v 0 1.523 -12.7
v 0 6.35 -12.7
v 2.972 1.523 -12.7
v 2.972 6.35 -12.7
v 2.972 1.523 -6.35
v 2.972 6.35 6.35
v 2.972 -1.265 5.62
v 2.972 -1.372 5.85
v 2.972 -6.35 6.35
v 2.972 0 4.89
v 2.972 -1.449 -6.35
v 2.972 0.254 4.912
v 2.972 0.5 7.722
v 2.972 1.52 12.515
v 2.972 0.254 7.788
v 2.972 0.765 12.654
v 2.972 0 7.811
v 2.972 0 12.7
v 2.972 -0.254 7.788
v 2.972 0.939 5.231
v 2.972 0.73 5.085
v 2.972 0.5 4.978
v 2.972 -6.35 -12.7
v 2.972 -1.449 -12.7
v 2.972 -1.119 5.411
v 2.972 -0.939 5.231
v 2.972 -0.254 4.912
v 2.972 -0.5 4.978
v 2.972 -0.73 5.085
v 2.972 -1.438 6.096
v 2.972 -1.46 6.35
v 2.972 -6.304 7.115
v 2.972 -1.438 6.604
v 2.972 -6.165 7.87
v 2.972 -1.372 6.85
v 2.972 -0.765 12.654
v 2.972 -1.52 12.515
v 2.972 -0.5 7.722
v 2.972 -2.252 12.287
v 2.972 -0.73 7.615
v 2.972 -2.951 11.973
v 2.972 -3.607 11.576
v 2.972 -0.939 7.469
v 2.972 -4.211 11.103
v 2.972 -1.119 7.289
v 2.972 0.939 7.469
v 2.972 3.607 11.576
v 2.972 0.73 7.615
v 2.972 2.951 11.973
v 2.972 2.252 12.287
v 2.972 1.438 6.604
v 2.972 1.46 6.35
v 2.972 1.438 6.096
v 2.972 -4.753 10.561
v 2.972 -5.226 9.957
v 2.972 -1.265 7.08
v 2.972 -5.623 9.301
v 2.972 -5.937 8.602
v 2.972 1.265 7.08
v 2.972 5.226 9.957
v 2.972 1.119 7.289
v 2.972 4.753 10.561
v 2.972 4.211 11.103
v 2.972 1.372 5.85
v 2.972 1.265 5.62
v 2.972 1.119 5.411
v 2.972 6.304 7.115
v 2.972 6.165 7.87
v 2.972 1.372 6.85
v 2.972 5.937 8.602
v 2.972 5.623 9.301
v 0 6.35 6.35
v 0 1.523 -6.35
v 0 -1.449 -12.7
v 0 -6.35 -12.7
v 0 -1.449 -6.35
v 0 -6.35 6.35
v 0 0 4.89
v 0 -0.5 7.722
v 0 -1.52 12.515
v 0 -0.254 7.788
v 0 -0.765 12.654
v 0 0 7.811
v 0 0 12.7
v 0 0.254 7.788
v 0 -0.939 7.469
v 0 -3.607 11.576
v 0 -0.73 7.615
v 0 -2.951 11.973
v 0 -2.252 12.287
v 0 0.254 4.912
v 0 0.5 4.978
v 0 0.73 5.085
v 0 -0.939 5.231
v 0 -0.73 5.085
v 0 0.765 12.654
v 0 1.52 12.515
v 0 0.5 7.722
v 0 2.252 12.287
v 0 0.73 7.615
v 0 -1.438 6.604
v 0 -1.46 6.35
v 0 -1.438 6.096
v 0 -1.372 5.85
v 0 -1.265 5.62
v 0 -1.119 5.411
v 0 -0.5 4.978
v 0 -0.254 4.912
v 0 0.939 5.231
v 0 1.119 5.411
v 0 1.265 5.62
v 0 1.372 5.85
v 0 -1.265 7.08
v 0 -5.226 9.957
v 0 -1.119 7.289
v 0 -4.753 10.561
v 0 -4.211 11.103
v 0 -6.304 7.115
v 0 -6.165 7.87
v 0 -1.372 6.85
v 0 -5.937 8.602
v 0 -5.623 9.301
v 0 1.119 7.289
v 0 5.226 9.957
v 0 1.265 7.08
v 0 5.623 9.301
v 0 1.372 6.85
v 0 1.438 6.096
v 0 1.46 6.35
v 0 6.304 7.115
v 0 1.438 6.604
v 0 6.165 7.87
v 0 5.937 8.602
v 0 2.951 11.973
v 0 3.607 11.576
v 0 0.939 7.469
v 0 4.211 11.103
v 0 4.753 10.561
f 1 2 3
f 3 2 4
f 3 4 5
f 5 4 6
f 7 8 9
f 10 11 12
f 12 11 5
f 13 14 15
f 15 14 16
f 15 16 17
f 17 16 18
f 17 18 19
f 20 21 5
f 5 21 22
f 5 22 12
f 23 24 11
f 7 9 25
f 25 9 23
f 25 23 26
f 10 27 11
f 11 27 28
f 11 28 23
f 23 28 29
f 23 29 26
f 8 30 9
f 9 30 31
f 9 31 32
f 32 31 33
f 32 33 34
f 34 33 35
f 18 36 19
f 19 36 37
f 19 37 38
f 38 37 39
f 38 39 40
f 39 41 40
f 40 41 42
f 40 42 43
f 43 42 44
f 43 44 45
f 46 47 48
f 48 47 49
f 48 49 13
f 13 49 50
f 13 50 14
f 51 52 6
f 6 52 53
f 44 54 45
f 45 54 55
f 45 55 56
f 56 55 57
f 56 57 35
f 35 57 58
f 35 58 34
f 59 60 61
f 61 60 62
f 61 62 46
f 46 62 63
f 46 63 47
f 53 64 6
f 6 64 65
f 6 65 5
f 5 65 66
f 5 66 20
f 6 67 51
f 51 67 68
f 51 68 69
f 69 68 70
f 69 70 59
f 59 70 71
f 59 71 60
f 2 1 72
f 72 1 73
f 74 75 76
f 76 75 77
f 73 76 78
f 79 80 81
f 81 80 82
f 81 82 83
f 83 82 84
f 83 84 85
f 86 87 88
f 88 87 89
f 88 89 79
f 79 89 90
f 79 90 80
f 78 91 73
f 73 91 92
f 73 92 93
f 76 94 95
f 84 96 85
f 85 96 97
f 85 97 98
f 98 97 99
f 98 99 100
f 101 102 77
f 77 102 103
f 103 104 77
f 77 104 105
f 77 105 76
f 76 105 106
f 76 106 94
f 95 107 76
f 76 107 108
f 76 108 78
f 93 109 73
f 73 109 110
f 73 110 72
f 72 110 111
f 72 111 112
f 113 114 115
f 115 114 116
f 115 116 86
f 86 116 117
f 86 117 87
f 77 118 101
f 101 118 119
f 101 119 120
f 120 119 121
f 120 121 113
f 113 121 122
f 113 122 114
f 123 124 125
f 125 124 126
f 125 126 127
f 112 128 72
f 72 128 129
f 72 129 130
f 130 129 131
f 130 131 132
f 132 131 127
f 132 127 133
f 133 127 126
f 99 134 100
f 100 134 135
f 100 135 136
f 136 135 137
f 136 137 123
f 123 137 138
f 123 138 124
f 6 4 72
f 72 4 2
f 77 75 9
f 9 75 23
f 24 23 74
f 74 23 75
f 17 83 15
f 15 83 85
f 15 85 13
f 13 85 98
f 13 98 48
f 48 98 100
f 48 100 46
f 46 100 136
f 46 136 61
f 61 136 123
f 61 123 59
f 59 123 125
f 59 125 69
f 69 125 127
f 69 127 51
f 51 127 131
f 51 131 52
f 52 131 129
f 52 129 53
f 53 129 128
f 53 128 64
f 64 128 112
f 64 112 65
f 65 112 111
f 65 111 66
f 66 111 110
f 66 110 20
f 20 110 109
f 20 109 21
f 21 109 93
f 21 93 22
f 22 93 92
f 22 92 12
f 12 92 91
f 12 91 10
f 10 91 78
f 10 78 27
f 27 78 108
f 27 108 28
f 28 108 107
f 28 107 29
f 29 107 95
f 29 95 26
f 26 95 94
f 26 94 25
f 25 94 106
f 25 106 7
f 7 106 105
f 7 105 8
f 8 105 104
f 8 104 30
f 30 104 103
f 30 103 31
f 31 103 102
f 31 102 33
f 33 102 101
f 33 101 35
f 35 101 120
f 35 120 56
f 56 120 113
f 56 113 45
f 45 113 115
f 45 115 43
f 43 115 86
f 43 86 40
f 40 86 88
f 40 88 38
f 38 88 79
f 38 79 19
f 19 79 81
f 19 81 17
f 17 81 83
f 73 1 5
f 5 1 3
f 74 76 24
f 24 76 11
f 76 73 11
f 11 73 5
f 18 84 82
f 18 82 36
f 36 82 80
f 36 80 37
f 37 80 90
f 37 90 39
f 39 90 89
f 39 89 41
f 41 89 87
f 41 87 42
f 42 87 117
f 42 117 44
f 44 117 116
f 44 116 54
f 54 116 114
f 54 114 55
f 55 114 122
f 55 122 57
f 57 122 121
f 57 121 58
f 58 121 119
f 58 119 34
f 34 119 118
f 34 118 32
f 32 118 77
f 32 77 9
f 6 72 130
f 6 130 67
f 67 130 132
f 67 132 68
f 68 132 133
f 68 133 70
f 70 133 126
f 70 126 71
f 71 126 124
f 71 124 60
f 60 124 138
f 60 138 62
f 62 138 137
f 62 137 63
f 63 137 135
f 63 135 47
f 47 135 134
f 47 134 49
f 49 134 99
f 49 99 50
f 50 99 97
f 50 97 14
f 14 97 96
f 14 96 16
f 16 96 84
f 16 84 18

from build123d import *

# Parameters (mm, degrees)
SKETCH1_W           = 12.7
SKETCH1_H           = 25.4
SKETCH1_R           = 1.4605
BOSS_EXTRUDE1_DEPTH = 2.9718
SKETCH2_W           = 2.9718
SKETCH2_H           = 6.35
CUT_EXTRUDE1_DEPTH  = 15.506691395
FILLET3_R           = 6.35


with BuildPart() as part:
    # Sketch1 → Boss-Extrude1 (new body)
    with BuildSketch(Plane.YZ):
        Rectangle(SKETCH1_W, SKETCH1_H)
        with Locations(Location((0, 6.35, 0), (0, 0, 270))):
            Circle(SKETCH1_R, mode=Mode.SUBTRACT)
    extrude(amount=BOSS_EXTRUDE1_DEPTH)

    # Sketch2 → Cut-Extrude1 (cut, through all)
    with BuildSketch(Plane.YZ.offset(2.9718)):
        with Locations((0.037070408, -9.525)):
            Rectangle(SKETCH2_W, SKETCH2_H)
    extrude(amount=-CUT_EXTRUDE1_DEPTH, mode=Mode.SUBTRACT)

    # Fillet3
    fillet3_edges = [part.edges().sort_by_distance(p)[0] for p in [
        (1.4859, -6.35, 12.7),
        (1.4859, 6.35, 12.7),
    ]]
    fillet(fillet3_edges, radius=FILLET3_R - 0.0001)  # a hair under: the kernel refuses the full size


solid = part.part
